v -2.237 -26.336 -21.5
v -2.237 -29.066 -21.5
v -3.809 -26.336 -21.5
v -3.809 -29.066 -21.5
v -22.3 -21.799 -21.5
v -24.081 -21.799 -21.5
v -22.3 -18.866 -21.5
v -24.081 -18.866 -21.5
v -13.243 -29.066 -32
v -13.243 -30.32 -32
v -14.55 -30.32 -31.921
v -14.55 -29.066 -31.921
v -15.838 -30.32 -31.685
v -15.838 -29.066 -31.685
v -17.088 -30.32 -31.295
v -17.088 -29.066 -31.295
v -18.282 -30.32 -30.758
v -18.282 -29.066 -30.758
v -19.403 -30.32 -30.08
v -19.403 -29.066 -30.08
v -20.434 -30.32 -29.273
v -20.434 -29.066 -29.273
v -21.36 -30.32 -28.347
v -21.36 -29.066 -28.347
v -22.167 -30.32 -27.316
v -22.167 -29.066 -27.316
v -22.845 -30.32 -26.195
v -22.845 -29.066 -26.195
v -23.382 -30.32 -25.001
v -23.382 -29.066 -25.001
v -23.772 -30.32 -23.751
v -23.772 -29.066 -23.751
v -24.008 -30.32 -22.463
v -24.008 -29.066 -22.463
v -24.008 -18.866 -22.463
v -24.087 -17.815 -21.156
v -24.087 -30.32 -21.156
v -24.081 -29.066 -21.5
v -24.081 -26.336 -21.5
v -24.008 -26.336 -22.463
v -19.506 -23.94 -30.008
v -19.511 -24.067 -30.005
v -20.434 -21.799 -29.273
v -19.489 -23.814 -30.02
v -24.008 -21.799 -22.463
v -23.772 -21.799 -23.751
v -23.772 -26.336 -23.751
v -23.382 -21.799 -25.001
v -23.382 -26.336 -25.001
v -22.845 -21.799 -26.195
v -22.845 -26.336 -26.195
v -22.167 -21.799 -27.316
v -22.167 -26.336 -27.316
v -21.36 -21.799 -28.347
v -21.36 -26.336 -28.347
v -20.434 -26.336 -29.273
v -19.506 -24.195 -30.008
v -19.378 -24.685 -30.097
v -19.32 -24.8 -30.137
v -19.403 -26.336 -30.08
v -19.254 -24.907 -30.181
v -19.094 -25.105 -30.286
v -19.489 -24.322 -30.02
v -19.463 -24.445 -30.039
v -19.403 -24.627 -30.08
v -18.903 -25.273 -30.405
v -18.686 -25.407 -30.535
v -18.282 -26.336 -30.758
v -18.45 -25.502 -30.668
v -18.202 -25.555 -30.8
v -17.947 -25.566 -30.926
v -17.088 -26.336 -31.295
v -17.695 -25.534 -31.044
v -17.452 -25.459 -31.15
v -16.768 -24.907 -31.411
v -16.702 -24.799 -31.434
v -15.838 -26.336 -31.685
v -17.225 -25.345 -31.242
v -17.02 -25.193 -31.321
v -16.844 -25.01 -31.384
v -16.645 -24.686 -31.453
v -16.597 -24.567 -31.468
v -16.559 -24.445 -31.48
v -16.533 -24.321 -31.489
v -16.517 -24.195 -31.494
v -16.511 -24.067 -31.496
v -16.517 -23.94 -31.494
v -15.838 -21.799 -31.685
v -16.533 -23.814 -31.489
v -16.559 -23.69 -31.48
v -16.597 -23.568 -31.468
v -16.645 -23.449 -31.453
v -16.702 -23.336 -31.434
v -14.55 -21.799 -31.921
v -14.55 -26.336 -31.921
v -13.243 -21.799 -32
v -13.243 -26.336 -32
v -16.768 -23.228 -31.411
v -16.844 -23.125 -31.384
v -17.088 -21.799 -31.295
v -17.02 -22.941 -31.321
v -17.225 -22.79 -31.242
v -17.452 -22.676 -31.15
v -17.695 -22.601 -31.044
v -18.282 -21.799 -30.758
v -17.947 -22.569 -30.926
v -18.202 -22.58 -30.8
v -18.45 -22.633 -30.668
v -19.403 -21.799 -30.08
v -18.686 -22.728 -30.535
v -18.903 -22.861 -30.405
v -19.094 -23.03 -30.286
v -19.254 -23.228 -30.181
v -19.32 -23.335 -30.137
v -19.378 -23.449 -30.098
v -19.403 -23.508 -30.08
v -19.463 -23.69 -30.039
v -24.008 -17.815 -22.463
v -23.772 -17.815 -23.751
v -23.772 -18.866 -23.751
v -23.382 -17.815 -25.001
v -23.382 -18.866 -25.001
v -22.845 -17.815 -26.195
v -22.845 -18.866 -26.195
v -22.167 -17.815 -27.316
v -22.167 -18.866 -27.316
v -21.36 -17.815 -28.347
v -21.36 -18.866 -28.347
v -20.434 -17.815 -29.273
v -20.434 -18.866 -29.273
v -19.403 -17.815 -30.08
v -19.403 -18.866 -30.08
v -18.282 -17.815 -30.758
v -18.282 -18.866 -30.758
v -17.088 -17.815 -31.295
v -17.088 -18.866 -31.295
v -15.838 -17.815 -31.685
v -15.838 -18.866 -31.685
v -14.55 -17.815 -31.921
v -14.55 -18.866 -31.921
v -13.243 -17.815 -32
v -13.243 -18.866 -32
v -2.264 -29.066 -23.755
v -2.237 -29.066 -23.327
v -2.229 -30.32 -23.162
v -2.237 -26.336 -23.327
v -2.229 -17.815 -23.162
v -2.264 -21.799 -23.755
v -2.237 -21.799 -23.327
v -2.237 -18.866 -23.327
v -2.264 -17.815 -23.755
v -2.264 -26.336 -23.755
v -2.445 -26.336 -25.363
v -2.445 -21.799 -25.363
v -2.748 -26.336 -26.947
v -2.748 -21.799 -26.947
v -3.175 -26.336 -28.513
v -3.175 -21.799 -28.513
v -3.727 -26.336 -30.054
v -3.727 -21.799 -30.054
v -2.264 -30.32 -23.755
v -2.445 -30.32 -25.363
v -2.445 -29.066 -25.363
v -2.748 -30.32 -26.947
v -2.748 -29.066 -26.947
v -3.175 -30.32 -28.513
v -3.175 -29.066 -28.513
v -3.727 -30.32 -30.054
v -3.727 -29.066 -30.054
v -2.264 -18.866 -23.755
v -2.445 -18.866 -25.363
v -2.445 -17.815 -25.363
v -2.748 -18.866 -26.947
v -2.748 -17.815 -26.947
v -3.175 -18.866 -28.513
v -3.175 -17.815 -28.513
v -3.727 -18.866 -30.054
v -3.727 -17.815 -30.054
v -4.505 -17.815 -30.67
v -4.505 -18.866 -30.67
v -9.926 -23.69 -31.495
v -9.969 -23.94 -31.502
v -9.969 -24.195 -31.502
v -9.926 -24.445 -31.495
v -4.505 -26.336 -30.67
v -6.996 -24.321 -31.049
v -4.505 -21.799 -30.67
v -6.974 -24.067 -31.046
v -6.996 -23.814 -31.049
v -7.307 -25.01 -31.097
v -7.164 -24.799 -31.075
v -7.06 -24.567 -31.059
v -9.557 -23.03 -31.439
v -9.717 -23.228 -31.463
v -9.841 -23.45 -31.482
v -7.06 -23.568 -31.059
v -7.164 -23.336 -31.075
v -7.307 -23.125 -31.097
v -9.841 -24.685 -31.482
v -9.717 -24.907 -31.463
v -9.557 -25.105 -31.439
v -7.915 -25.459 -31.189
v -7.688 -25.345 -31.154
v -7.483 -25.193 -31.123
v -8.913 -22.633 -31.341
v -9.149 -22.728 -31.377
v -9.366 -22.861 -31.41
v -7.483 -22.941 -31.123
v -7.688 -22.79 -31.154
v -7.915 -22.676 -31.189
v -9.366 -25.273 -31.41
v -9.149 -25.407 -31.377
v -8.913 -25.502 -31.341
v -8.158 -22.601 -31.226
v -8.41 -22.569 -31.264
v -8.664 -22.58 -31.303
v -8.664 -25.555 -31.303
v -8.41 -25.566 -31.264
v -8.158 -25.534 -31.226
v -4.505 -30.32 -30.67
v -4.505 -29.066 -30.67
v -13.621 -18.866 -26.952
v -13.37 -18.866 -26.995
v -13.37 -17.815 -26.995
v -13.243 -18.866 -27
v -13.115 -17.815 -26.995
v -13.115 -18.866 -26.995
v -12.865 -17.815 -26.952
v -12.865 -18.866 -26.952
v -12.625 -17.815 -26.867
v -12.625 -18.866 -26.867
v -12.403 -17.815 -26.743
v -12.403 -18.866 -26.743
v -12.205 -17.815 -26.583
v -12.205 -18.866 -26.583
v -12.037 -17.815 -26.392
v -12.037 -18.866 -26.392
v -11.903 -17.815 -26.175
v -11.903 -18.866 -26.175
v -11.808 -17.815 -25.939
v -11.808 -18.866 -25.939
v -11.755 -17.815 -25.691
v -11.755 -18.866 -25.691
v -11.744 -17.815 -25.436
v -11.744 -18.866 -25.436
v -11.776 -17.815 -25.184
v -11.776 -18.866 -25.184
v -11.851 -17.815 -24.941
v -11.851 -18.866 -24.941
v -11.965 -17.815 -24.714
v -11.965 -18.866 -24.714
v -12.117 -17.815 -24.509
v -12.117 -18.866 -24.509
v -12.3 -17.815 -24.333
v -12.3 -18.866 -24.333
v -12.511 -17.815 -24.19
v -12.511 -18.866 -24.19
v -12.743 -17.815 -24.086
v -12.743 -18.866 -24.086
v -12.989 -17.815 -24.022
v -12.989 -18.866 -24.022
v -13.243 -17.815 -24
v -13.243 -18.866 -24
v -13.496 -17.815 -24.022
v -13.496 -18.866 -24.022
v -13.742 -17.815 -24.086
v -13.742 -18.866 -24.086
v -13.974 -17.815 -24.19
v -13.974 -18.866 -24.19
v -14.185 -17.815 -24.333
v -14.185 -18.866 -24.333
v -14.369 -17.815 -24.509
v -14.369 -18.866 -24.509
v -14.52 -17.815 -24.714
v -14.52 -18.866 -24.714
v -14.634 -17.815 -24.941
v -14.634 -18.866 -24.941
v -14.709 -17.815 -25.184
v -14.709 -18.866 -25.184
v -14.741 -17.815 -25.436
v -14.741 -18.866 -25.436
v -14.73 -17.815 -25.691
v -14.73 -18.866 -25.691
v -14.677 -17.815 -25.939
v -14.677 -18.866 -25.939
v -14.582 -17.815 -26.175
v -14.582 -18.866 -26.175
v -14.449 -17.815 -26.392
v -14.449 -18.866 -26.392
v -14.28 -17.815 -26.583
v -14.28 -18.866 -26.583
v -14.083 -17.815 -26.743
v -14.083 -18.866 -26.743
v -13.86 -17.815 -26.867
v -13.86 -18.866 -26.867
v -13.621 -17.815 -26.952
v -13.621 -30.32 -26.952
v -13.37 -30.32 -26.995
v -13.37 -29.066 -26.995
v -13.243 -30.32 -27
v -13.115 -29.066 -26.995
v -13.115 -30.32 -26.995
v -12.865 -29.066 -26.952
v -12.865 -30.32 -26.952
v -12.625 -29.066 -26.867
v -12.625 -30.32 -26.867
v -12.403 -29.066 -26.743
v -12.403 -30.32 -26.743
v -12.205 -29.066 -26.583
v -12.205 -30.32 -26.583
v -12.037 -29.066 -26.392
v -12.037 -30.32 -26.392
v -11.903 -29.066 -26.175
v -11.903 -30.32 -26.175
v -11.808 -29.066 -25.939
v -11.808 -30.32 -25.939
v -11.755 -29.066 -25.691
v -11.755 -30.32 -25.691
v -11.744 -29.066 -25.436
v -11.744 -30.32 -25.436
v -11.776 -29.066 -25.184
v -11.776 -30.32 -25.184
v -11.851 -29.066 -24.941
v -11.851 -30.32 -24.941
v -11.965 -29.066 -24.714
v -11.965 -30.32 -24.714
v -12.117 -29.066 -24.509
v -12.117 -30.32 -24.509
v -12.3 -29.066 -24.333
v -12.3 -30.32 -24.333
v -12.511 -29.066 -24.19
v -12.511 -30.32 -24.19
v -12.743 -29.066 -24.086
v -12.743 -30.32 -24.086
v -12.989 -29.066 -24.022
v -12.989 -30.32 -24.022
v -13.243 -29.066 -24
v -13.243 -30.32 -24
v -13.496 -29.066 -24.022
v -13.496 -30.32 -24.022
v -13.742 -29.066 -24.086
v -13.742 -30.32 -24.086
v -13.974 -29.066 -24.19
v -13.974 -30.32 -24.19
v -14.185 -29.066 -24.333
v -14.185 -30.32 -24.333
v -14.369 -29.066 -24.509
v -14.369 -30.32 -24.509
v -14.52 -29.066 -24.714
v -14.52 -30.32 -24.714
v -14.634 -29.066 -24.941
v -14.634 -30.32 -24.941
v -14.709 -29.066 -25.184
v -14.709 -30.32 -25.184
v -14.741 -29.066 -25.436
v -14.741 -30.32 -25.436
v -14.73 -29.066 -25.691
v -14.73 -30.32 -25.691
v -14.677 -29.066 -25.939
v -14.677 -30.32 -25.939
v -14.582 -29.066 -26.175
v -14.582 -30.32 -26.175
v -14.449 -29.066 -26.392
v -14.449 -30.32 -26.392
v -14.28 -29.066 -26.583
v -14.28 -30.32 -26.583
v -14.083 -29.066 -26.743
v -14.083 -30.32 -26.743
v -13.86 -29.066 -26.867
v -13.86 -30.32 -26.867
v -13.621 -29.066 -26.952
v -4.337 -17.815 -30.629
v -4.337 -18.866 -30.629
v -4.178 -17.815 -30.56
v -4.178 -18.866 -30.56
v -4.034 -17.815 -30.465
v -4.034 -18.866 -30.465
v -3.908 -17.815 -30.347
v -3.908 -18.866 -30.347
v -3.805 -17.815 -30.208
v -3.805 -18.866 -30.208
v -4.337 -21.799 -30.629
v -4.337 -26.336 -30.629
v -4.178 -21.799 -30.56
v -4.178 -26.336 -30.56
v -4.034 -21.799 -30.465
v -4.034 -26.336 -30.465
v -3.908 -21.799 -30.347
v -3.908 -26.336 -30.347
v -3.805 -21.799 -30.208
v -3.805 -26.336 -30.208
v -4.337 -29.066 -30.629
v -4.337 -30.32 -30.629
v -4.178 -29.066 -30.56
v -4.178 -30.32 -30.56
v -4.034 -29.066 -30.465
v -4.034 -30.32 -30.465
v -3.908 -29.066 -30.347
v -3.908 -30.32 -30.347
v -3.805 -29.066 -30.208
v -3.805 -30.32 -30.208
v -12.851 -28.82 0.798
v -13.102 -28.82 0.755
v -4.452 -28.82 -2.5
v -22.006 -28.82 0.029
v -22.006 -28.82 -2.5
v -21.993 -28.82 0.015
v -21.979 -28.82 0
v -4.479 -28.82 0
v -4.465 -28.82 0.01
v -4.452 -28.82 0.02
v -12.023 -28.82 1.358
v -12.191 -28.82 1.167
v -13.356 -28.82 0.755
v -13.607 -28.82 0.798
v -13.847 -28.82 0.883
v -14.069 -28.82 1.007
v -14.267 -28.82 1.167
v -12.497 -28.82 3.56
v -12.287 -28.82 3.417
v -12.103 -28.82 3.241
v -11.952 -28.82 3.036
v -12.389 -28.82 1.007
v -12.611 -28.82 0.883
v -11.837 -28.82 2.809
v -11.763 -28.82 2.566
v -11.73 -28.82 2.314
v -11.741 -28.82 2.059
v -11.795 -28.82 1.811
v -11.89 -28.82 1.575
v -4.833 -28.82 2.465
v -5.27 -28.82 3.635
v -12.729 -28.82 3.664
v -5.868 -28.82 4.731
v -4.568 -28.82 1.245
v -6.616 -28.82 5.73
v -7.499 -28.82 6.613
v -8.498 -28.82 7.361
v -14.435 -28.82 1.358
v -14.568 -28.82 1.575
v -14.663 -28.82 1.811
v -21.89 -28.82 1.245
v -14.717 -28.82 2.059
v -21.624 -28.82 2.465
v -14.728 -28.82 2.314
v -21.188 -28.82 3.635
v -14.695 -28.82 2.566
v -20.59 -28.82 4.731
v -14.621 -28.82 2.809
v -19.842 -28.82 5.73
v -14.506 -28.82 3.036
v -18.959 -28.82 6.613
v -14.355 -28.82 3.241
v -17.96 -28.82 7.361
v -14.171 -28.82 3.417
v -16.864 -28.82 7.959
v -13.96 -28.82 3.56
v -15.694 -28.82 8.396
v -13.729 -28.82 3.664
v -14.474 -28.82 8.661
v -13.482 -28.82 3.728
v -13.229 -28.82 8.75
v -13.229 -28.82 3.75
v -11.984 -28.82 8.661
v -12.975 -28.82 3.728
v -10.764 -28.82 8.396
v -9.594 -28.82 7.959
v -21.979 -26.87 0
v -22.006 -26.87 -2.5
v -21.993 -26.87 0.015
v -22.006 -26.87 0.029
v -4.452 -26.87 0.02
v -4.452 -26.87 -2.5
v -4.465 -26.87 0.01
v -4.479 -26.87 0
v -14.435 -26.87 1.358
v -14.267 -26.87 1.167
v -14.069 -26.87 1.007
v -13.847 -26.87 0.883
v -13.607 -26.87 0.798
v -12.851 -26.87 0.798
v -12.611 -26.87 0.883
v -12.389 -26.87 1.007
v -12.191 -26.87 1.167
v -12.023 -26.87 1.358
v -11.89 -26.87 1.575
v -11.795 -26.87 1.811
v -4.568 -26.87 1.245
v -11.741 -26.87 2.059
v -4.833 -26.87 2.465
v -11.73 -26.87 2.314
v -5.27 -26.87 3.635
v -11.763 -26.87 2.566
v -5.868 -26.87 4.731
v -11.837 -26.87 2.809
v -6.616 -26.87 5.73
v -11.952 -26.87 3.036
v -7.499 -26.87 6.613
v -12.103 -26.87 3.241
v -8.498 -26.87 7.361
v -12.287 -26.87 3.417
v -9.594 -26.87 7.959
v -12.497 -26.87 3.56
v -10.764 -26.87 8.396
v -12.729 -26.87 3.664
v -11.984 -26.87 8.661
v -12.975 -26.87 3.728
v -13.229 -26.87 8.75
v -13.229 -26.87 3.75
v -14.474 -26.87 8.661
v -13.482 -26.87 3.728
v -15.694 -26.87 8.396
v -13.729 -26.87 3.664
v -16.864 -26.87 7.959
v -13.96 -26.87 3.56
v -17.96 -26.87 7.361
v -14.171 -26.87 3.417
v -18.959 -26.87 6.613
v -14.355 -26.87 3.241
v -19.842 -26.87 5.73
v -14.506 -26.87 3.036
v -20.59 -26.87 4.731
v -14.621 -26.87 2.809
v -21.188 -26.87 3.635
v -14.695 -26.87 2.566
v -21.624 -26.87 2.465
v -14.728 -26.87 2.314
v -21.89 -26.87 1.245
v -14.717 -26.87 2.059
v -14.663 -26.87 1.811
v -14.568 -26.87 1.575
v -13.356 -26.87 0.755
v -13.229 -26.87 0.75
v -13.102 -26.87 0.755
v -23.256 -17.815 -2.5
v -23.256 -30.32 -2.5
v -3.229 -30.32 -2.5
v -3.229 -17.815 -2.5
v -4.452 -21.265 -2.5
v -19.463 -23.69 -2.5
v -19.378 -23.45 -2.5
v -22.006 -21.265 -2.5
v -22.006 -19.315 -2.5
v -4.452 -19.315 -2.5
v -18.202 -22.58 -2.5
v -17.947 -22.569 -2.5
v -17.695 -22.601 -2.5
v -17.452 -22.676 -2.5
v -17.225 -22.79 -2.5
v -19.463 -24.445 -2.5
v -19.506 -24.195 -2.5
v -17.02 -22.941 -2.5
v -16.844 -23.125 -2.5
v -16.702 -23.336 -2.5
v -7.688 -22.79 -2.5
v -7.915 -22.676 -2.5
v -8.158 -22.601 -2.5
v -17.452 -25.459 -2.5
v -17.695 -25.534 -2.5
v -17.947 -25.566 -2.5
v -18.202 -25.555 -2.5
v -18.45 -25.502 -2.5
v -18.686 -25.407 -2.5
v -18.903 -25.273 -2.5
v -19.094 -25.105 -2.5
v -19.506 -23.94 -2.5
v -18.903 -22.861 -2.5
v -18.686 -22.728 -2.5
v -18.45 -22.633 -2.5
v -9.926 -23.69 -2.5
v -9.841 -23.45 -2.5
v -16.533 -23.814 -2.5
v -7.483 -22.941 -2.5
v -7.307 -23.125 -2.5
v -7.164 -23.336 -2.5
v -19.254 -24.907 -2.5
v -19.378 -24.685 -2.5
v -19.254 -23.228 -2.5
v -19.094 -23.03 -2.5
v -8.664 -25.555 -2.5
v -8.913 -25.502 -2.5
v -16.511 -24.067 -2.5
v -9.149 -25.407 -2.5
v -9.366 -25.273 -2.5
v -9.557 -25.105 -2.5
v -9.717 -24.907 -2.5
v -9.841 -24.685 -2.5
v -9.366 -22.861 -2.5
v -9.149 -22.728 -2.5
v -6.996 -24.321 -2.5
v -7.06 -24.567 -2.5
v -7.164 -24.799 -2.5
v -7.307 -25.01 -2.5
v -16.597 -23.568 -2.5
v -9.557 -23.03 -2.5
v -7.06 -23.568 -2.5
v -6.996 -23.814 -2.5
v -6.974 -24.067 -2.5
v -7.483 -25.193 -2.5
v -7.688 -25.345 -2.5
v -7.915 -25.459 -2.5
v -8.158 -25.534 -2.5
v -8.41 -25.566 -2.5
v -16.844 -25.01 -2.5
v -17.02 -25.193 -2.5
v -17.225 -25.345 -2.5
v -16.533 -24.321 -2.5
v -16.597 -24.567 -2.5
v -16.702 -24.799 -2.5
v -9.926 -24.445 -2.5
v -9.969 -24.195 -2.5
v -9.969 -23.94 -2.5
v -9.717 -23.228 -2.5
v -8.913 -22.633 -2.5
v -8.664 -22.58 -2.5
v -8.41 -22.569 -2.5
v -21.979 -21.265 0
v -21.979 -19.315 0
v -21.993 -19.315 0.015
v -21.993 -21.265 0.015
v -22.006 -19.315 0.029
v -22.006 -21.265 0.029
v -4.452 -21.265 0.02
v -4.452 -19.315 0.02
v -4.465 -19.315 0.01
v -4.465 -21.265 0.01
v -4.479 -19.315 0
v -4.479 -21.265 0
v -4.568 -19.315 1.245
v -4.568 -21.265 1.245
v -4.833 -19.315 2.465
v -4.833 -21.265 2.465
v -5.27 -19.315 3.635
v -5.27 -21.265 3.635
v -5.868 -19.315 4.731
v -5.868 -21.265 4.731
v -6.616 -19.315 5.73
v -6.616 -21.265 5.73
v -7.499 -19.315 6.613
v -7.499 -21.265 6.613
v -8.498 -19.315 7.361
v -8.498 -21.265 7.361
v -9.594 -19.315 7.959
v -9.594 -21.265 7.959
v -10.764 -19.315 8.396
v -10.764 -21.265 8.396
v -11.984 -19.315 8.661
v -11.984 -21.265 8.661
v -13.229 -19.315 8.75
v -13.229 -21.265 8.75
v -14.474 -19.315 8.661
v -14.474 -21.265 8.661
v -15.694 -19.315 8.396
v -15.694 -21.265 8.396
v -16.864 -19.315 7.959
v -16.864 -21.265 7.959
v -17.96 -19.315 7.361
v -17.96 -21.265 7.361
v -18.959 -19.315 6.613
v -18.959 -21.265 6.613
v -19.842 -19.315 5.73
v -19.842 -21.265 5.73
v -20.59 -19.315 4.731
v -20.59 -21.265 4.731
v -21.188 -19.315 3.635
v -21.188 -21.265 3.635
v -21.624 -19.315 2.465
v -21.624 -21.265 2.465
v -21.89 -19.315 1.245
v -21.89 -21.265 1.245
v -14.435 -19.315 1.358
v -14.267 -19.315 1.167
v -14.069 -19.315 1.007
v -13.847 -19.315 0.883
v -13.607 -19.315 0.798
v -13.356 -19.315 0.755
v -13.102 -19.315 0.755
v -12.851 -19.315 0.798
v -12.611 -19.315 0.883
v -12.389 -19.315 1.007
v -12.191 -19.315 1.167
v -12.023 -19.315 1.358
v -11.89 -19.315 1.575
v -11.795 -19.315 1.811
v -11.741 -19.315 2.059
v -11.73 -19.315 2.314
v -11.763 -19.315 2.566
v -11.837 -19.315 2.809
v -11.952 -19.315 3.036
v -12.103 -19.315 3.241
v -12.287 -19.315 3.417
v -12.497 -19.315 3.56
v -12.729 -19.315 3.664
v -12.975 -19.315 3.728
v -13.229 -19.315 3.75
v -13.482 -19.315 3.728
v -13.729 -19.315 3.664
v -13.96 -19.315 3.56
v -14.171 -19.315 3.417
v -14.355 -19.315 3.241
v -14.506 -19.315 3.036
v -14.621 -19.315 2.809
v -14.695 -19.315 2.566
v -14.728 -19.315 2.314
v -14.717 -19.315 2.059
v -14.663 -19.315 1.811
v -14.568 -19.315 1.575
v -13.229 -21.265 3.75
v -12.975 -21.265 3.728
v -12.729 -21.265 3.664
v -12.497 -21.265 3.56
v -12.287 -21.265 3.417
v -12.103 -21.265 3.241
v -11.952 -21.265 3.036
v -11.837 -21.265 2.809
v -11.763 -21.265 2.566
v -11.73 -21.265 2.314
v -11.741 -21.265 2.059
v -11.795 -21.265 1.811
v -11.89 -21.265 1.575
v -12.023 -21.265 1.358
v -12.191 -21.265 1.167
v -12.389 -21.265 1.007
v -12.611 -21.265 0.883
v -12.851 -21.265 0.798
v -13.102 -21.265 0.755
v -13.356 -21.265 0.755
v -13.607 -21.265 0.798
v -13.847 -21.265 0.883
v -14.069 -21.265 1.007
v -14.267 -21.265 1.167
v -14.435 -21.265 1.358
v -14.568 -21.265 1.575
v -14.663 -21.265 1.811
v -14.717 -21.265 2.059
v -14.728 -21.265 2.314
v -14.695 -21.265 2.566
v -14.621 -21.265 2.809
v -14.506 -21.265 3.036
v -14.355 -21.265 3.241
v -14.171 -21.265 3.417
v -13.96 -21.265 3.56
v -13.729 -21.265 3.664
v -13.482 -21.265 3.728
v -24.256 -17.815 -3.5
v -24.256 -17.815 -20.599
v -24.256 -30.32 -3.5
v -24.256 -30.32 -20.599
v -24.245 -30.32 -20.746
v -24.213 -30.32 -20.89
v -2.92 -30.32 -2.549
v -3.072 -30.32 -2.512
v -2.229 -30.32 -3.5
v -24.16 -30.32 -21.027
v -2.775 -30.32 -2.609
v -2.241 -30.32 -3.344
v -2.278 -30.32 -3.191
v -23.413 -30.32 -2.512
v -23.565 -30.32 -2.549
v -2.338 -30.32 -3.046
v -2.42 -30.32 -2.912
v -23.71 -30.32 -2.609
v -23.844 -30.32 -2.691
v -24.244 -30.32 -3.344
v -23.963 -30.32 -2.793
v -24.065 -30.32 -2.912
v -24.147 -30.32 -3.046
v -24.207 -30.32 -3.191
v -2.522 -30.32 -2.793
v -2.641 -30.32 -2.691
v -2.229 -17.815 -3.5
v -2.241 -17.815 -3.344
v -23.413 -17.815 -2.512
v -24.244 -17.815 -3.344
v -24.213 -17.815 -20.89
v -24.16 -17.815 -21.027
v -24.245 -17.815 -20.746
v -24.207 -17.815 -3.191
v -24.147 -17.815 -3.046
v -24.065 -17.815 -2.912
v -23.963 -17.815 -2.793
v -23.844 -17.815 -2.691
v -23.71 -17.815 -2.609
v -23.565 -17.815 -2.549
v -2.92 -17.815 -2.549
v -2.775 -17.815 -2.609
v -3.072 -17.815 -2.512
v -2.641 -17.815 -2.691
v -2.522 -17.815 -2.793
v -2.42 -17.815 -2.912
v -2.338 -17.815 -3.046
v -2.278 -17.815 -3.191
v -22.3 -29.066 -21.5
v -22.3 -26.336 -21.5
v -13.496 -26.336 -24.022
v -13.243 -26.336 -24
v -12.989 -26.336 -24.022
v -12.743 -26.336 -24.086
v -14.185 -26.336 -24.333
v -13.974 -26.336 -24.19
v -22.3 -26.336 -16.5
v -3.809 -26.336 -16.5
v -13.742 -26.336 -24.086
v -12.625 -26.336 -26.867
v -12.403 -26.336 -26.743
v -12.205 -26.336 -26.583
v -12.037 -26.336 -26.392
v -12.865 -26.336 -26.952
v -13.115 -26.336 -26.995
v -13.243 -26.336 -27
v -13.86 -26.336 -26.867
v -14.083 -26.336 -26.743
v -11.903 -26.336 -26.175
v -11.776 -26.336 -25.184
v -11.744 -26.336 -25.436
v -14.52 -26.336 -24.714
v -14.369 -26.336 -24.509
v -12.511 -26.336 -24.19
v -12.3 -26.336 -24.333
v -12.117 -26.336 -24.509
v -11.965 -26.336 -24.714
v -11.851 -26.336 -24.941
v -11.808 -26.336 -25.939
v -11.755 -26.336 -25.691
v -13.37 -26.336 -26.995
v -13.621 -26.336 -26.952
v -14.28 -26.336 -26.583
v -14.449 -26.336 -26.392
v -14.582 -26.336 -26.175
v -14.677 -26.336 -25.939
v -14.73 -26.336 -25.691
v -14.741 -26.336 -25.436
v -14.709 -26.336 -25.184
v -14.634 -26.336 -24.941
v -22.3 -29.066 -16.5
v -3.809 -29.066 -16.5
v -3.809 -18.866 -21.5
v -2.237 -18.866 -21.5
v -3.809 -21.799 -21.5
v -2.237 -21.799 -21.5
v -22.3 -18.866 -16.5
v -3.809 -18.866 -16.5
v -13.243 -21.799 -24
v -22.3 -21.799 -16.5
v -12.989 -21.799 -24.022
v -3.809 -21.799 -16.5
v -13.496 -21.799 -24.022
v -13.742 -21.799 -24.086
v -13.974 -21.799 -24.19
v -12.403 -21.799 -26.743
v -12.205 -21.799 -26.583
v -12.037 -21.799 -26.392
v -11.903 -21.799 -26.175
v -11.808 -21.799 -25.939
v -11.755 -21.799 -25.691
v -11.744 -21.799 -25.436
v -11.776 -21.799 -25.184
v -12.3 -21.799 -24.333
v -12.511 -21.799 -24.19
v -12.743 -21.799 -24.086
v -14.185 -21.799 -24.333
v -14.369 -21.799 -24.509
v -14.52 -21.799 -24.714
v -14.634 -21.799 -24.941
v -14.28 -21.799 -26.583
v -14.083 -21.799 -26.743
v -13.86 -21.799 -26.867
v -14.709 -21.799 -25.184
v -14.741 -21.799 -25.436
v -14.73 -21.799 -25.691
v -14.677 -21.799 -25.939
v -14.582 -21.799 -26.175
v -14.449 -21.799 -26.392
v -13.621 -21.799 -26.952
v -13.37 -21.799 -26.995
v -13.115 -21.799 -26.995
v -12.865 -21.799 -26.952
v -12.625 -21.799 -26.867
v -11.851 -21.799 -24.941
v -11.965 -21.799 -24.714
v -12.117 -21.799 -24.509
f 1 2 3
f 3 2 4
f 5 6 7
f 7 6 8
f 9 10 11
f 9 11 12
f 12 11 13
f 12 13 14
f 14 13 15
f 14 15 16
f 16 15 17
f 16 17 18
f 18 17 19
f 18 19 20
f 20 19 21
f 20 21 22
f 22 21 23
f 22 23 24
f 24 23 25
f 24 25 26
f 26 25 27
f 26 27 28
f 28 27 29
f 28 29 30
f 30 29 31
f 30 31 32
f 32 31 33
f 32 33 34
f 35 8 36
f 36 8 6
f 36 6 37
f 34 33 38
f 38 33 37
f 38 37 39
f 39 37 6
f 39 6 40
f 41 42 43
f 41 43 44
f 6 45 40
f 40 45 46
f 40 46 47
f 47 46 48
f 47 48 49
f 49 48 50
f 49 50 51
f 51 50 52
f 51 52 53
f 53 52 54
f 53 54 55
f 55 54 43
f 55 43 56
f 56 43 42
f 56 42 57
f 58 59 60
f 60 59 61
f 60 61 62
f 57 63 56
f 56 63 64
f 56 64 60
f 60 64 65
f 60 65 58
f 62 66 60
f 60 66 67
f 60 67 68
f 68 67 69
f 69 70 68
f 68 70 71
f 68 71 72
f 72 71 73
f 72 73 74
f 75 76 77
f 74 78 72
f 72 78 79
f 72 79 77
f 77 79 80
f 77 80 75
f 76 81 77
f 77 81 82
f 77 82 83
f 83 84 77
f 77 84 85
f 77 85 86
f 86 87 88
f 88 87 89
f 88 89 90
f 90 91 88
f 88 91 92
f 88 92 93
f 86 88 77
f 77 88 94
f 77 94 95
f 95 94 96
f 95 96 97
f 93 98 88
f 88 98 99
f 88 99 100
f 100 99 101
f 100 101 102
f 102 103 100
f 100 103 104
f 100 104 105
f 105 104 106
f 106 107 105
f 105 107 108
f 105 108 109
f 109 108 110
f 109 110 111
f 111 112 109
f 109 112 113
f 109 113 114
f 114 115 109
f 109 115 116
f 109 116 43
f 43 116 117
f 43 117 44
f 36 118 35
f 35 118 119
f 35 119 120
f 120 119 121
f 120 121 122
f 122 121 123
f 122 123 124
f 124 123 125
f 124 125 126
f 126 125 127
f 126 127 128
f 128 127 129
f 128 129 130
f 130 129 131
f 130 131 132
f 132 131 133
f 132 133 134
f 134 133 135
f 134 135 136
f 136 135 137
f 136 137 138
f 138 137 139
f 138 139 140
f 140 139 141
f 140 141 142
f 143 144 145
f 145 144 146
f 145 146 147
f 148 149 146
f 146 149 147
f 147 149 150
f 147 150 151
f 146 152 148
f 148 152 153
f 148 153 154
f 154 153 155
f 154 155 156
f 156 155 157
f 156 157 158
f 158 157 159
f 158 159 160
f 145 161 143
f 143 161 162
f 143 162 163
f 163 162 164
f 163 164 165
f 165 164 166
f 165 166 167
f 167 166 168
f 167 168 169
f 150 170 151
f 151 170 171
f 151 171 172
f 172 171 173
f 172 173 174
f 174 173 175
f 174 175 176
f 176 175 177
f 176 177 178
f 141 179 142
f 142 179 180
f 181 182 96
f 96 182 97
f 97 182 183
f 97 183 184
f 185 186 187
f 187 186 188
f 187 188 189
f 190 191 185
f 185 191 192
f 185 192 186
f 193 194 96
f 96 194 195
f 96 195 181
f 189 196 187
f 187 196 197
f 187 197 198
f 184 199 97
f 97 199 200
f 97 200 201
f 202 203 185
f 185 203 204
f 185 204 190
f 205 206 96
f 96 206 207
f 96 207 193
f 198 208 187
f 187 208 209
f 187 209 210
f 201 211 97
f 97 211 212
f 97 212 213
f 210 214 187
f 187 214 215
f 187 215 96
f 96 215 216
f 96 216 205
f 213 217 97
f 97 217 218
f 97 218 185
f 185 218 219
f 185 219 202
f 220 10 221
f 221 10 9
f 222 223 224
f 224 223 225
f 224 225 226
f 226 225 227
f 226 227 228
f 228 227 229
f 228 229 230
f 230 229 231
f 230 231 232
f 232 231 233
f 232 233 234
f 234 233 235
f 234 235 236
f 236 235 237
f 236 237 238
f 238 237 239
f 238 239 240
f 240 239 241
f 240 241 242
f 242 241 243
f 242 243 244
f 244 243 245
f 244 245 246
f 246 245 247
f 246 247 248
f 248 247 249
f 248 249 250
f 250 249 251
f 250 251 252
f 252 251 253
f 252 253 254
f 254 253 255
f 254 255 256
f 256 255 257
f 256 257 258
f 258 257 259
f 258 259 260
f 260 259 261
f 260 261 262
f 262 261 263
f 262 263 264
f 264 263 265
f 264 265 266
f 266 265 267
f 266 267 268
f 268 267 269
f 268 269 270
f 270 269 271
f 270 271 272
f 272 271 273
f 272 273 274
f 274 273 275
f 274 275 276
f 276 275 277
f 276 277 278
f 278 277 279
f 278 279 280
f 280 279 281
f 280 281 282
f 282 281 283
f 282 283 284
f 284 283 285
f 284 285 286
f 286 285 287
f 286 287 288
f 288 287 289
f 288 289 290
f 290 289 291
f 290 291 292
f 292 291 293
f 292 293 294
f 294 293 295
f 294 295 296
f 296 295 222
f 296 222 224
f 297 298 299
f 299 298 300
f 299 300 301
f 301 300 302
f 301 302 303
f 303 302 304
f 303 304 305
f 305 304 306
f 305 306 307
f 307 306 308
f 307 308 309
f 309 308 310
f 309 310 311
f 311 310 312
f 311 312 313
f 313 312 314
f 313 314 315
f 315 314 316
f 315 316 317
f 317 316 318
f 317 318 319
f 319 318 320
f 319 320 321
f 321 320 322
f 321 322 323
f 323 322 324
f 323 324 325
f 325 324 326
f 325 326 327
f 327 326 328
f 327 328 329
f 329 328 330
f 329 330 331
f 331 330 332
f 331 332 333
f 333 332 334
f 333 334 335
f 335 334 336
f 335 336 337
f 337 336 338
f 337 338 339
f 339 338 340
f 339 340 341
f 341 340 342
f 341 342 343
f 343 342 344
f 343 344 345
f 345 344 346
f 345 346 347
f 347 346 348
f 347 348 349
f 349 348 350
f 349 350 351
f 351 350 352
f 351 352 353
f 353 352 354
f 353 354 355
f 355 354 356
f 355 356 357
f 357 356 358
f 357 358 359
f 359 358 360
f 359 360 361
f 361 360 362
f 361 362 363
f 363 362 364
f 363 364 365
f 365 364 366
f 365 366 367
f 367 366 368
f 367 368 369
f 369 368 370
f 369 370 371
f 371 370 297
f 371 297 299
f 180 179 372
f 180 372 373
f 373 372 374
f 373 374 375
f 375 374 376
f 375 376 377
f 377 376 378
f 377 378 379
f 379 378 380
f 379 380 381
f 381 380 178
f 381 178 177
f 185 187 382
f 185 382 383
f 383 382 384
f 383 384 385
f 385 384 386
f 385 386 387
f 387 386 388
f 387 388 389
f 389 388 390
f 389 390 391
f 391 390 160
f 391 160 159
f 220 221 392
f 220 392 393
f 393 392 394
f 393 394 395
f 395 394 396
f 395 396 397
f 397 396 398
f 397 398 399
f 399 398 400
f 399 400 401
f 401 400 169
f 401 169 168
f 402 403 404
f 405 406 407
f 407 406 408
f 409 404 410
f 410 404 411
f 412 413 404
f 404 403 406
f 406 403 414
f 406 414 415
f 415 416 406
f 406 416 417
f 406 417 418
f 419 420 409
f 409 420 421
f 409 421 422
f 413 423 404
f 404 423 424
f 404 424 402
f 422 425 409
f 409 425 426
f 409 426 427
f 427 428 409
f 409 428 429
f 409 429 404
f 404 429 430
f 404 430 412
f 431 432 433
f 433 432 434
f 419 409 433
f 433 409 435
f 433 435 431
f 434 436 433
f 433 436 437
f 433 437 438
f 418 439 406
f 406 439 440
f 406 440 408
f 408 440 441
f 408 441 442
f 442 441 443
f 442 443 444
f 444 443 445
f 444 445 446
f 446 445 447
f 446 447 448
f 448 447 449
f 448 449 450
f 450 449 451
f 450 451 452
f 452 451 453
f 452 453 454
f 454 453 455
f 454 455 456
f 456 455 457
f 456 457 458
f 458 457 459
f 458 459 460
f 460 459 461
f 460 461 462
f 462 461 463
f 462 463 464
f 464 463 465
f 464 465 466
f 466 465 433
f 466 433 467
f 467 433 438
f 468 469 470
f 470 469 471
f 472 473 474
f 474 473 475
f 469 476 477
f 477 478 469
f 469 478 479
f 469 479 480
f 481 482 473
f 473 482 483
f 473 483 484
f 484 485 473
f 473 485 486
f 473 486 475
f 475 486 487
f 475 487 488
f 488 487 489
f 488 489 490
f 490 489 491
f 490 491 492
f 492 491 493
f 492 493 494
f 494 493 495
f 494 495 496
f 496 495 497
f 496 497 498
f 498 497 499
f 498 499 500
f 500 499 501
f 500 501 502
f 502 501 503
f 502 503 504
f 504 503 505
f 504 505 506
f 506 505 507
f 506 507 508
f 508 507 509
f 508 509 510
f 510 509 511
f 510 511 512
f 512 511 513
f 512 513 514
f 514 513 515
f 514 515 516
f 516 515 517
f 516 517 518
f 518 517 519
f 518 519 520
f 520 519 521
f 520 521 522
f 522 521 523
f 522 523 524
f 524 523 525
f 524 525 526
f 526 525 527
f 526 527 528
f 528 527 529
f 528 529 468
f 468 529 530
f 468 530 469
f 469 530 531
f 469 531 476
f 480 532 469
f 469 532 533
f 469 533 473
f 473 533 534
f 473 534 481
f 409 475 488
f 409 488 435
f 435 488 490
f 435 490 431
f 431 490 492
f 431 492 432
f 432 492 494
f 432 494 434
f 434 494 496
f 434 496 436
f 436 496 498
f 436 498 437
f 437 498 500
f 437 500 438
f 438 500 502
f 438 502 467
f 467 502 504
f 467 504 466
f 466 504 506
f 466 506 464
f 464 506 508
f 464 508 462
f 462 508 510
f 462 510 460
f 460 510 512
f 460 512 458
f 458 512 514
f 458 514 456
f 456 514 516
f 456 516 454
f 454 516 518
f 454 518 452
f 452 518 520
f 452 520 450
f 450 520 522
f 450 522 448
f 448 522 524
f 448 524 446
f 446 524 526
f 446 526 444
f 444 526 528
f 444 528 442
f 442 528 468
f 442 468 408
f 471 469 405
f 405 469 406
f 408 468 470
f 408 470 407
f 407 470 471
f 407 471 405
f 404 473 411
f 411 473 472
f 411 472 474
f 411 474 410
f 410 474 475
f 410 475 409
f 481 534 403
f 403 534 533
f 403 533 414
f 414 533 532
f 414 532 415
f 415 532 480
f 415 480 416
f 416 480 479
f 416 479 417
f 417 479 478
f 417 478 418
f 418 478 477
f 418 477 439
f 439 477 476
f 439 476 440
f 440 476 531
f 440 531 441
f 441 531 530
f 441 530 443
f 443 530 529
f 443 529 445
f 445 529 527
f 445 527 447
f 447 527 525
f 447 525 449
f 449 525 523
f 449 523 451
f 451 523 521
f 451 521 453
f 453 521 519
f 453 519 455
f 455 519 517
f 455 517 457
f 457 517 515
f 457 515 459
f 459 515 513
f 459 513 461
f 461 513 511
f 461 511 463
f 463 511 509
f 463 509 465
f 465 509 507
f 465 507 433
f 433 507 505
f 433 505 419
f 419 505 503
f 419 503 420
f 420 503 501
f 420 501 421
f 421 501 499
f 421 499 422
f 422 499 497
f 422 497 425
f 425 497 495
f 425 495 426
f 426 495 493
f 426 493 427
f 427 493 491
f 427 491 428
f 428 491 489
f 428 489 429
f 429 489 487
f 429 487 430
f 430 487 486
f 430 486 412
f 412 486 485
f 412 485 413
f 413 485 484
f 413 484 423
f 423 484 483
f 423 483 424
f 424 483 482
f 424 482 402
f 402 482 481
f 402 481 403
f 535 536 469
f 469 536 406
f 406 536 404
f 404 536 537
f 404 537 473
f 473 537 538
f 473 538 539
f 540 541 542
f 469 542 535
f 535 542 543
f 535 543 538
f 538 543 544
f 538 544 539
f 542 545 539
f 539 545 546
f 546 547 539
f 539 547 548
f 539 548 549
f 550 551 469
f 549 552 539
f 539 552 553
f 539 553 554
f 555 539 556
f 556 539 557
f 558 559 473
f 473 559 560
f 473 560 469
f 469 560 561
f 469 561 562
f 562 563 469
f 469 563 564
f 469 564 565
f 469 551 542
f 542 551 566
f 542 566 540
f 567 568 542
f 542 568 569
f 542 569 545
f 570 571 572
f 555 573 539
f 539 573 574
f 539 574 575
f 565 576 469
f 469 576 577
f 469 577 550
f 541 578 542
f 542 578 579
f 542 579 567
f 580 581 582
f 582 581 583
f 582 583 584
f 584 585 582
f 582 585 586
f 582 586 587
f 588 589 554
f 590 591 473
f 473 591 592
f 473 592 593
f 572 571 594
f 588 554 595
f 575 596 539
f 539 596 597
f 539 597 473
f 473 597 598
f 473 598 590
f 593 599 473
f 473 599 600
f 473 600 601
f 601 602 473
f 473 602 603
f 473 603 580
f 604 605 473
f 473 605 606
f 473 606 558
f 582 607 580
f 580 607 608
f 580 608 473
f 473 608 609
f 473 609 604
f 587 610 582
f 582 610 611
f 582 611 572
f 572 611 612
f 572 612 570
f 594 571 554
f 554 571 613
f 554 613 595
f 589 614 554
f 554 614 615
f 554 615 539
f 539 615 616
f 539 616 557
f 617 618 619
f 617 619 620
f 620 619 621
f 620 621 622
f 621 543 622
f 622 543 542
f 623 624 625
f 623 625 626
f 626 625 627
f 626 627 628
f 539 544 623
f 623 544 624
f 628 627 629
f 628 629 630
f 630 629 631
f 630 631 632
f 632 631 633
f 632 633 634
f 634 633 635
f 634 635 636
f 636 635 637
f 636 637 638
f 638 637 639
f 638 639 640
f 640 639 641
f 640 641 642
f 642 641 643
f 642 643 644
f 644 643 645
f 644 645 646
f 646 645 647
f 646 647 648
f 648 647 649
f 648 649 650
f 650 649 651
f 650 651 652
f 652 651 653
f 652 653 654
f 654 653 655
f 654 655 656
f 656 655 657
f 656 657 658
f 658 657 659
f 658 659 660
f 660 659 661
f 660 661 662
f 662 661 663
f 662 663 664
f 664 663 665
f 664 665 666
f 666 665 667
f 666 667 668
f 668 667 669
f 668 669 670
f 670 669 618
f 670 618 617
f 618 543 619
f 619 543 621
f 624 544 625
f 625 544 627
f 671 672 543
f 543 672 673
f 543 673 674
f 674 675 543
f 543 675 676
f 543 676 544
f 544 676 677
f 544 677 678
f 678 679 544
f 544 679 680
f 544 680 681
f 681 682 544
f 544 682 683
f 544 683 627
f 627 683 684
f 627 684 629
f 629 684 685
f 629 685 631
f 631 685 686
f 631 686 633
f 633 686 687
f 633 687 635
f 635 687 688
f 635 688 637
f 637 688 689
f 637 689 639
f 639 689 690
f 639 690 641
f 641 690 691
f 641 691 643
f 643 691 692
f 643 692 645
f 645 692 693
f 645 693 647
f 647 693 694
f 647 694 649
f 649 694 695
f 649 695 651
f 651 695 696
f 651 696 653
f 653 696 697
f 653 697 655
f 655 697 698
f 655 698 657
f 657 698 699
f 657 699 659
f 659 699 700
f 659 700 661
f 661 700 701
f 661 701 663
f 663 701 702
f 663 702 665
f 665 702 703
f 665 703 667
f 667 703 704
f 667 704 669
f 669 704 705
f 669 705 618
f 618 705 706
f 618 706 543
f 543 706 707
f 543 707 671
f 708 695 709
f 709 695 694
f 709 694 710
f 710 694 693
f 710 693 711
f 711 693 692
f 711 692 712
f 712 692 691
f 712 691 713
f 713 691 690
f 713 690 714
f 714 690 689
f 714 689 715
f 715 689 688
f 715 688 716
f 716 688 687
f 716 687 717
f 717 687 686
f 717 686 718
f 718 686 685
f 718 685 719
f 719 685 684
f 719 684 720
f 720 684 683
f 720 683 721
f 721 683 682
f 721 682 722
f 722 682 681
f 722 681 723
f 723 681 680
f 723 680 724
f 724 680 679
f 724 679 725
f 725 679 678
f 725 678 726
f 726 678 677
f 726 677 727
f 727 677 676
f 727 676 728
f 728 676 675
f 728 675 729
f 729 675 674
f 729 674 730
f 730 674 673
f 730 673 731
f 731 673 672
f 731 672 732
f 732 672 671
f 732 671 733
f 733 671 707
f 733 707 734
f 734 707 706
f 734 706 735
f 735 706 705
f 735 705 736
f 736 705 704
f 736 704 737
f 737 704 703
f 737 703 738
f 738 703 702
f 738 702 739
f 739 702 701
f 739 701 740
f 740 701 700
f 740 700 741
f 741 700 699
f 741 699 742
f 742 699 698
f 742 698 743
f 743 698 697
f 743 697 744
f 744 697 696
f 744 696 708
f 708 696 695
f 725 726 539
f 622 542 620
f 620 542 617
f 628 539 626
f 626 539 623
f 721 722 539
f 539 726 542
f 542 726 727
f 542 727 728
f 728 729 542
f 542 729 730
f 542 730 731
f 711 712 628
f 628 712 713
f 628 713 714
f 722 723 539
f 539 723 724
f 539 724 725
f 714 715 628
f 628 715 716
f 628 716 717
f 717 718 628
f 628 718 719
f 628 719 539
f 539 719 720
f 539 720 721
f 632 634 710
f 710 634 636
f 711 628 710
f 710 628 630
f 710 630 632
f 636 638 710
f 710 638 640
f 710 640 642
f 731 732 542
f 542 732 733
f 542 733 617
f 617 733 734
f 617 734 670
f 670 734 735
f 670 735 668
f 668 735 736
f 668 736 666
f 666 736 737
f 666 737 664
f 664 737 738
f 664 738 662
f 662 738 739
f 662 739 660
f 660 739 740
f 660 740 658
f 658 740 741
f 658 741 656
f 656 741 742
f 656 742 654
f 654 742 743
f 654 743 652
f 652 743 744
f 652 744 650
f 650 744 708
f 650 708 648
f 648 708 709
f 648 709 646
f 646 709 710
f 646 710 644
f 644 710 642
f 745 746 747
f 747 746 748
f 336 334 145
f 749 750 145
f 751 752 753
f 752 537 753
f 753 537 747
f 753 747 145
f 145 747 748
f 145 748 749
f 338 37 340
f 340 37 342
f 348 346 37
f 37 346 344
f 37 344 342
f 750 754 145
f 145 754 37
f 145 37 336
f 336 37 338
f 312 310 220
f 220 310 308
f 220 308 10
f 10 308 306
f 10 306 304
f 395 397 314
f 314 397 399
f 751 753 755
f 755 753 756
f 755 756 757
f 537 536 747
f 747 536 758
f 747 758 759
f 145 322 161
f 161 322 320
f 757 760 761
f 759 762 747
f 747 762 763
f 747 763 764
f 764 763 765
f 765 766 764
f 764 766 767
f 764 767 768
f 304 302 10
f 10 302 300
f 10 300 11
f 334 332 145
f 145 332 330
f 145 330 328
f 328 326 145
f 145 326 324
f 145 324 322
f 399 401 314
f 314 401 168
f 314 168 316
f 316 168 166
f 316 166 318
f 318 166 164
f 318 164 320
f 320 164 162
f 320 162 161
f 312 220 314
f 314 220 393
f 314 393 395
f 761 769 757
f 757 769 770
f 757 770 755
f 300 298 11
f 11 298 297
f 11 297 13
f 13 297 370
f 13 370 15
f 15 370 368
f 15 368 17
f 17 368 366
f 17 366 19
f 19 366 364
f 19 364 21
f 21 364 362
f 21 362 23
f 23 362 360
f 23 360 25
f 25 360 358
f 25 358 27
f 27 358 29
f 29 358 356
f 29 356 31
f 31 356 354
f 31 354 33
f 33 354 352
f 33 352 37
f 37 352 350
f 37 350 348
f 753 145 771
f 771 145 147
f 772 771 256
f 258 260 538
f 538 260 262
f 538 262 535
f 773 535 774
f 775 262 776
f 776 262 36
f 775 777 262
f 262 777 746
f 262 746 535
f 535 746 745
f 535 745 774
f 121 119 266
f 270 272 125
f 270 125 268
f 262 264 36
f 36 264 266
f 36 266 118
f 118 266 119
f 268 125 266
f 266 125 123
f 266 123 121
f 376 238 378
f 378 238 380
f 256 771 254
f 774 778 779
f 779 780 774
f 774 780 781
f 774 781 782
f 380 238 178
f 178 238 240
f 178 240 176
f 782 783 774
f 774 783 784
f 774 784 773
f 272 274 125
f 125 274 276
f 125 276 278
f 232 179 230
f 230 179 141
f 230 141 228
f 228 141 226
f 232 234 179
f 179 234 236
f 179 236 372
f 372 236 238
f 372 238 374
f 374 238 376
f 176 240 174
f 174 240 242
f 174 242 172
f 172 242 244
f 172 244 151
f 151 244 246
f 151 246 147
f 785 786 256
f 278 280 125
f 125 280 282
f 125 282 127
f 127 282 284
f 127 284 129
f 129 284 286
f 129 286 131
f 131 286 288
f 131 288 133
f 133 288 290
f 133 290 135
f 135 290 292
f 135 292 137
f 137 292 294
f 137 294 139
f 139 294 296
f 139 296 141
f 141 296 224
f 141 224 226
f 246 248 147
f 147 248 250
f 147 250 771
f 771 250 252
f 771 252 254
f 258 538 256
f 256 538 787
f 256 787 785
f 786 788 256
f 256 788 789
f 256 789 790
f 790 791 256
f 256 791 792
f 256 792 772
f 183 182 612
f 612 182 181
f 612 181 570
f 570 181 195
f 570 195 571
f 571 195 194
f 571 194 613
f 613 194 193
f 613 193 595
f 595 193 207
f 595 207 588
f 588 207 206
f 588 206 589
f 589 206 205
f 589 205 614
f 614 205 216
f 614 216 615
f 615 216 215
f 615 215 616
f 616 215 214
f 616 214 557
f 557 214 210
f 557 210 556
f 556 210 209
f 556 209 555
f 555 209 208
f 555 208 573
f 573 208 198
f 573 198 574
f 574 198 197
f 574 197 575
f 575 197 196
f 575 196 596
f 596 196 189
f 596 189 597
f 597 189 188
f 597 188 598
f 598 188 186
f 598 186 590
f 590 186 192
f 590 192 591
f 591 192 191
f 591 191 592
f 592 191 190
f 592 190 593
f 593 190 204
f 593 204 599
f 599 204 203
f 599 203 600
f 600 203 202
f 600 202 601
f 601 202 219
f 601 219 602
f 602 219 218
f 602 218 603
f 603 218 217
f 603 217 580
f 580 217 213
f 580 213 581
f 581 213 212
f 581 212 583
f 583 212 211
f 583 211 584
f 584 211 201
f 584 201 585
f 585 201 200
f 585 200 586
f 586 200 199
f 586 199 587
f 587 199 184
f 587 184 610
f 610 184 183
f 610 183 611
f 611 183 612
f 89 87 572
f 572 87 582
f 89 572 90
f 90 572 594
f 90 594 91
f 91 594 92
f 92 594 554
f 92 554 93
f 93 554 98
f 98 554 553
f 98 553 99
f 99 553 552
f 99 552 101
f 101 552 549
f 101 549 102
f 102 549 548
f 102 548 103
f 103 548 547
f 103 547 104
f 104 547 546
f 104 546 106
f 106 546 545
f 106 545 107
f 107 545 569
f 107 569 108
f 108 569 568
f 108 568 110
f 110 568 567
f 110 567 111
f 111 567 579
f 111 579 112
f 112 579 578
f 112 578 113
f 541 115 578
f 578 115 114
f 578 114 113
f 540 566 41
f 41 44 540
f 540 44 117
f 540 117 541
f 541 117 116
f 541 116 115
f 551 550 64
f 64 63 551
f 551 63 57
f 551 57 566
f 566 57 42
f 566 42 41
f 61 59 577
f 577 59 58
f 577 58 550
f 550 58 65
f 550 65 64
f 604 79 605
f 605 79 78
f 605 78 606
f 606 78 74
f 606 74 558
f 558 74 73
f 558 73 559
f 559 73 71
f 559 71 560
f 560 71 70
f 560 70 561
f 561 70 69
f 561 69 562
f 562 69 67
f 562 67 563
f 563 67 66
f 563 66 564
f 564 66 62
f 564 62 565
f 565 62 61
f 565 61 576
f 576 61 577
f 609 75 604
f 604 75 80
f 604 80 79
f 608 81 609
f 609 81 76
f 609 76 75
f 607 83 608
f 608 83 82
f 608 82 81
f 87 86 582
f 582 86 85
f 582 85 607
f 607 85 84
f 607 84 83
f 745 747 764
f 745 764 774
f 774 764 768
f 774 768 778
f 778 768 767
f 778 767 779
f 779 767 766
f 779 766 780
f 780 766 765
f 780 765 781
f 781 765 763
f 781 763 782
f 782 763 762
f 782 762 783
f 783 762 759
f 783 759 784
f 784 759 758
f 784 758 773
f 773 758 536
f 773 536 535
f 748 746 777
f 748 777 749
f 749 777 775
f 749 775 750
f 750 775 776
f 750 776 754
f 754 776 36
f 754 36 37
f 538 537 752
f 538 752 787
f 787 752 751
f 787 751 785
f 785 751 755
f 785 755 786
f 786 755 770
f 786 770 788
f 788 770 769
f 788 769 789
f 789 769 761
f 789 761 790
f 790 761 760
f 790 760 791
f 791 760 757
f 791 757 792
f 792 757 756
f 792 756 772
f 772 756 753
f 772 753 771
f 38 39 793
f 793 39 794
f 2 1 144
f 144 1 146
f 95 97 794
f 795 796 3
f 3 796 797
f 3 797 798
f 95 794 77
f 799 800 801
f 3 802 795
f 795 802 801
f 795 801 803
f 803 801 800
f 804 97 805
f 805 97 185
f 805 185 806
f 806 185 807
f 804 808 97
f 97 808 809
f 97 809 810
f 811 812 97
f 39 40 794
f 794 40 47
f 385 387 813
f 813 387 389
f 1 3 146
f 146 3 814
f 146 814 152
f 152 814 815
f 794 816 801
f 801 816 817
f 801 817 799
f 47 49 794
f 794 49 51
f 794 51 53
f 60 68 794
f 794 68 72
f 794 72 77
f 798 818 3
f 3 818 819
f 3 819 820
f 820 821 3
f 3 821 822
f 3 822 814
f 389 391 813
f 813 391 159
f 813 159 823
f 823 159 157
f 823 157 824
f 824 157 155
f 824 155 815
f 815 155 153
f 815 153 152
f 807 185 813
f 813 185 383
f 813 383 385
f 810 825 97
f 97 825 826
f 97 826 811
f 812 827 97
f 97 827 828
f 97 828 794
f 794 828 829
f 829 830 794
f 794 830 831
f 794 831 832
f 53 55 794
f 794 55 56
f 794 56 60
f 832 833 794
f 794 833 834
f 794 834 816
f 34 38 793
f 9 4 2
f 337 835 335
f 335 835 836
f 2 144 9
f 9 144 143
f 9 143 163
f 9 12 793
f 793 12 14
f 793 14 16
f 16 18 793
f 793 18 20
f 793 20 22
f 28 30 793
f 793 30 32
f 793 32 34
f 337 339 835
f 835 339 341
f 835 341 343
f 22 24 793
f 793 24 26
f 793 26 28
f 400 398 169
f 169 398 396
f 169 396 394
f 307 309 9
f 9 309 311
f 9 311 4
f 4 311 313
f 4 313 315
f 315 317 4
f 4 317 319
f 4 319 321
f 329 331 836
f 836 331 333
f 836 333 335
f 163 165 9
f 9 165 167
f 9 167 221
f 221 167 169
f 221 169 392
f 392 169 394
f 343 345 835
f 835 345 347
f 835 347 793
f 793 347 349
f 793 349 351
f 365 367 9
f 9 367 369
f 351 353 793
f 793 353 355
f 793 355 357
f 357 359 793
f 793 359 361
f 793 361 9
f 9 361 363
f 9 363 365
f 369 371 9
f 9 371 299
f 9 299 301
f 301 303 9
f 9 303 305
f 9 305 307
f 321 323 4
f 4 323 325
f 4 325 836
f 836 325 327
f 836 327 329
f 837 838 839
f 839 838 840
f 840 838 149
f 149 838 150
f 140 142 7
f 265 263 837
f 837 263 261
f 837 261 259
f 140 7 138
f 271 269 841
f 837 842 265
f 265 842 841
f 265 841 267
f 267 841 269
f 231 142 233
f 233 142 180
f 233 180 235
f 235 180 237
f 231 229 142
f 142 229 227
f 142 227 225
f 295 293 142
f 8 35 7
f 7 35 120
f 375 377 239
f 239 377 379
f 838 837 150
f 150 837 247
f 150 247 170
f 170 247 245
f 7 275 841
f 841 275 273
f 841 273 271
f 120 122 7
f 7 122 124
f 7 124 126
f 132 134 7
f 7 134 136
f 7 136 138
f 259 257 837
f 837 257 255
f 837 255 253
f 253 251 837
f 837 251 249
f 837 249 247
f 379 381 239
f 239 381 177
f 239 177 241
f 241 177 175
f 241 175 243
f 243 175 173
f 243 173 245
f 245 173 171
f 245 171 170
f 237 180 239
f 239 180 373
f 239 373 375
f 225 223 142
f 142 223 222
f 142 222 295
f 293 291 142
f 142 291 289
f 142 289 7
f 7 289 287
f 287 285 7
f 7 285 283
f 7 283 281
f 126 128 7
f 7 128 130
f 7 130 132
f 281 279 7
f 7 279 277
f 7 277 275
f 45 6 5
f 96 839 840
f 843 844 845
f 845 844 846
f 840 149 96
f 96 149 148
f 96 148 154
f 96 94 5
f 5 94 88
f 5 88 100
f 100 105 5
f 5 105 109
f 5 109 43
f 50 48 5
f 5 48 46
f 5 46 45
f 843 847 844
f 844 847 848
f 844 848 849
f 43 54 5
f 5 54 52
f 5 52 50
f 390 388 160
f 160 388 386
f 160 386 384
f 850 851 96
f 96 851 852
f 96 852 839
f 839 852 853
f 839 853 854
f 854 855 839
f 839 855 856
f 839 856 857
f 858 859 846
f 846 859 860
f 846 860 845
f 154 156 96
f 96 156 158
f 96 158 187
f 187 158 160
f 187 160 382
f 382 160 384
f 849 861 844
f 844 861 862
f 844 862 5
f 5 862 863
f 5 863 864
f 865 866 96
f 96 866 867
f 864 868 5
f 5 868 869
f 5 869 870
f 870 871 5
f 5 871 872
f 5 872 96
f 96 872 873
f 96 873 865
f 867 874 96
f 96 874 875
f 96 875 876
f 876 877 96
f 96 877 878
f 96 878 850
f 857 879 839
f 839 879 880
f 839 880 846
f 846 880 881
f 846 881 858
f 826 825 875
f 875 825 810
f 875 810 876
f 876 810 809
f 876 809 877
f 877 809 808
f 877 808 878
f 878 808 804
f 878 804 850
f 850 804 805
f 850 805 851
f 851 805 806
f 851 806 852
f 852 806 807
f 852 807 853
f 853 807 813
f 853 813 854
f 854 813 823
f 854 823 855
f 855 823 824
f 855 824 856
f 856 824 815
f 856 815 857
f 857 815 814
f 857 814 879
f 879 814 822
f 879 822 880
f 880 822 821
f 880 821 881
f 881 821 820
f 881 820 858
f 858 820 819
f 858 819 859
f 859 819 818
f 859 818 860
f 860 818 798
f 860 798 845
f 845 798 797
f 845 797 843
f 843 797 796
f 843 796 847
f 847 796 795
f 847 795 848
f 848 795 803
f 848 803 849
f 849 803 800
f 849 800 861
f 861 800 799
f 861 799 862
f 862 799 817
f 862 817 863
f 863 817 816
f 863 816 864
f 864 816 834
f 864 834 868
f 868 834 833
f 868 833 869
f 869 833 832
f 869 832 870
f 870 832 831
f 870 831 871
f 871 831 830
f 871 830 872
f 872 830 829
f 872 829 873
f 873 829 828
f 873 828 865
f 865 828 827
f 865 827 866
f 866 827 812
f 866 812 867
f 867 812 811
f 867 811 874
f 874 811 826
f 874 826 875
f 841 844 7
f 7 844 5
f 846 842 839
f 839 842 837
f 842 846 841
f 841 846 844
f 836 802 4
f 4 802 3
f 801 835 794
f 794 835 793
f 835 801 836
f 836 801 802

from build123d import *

# Parameters (mm, degrees)
SKETCH2_W             = 17.554431489
SKETCH2_H             = 1.95
BOSS_EXTRUDE1_DEPTH   = 8.75
BOSS_EXTRUDE1_2_DEPTH = 8.75
CUT_EXTRUDE1_DEPTH    = 26.518349076
SKETCH4_W             = 22.027215745
SKETCH4_H             = 12.505427167
BOSS_EXTRUDE2_DEPTH   = 32
SKETCH5_R             = 1.5
CUT_EXTRUDE2_DEPTH    = 12
SKETCH6_W             = 22.027215745
SKETCH6_H             = 12.505427167
SKETCH6_W_2           = 17.554431489
SKETCH6_H_2           = 1.95
CUT_EXTRUDE3_DEPTH    = 2.5
SKETCH7_R             = 1.5
CUT_EXTRUDE4_DEPTH    = 13
SKETCH8_R             = 1.5
CUT_EXTRUDE5_DEPTH    = 34
FILLET3_R             = 1
SKETCH9_W             = 22.010837792
SKETCH9_H             = 2.932484208
SKETCH9_H_2           = 2.729697333
CUT_EXTRUDE6_DEPTH    = 11
SKETCH10_W            = 18.490355351
SKETCH10_H            = 2.932484208
SKETCH10_H_2          = 2.729697333
CUT_EXTRUDE7_DEPTH    = 5


with BuildPart() as part:
    # Sketch2 → Boss-Extrude1 (new body)
    with BuildSketch(Plane.XY):
        with Locations((-13.228930986, -27.845183414)):
            Rectangle(SKETCH2_W, SKETCH2_H)
    extrude(amount=BOSS_EXTRUDE1_DEPTH)


with BuildPart() as body_2:
    # Sketch2 → Boss-Extrude1 2 (new body)
    with BuildSketch(Plane.XY):
        with Locations((-13.228930986, -20.289756247)):
            Rectangle(SKETCH2_W, SKETCH2_H)
    extrude(amount=BOSS_EXTRUDE1_2_DEPTH)


with BuildPart() as cut_extrude1_tool:
    # Sketch3 → Cut-Extrude1 (new, through all)
    with BuildSketch(Plane(origin=(0, -19.314756247, 0), x_dir=(1, 0, 0), z_dir=(0, 1, 0))):
        with BuildLine():
            ThreePointArc((-13.228930986, -8.75), (-7.041746651, -6.187184335), (-4.478930986, 0))
            add(Edge.make_bspline(
                [(-4.478930986, 0), (1.138349918, -4.151657709), (-4.451715242, -8.75)],
                knots=[0, 0, 0, 1, 1, 1], degree=2))
            add(Edge.make_bspline(
                [(-22.006146731, -8.75), (-13.228930986, -12.473510392), (-4.451715242, -8.75)],
                knots=[0, 0, 0, 1, 1, 1], degree=2))
            add(Edge.make_bspline(
                [(-21.978930986, 0), (-25.926969228, -4.242865138), (-22.006146731, -8.75)],
                knots=[0, 0, 0, 1, 1, 1], degree=2))
            ThreePointArc((-21.978930986, 0), (-19.416115322, -6.187184335), (-13.228930986, -8.75))
        make_face()
    extrude(amount=-CUT_EXTRUDE1_DEPTH)


with BuildPart() as part_1:
    add(part.part)

    # Cut-Extrude1: cut by cut_extrude1_tool
    add(cut_extrude1_tool.part, mode=Mode.SUBTRACT)



with BuildPart() as body_2_1:
    add(body_2.part)

    # Cut-Extrude1: cut by cut_extrude1_tool
    add(cut_extrude1_tool.part, mode=Mode.SUBTRACT)


with BuildPart() as part_2:
    add(part_1.part)

    add(body_2_1.part)  # Boss-Extrude2 merges body 2
    # Sketch4 → Boss-Extrude2 (add)
    with BuildSketch(Plane(origin=(0, 0, 0), x_dir=(-1, 0, 0), z_dir=(0, 0, -1))):
        with Locations((13.242538859, -24.067469831)):
            Rectangle(SKETCH4_W, SKETCH4_H)
    extrude(amount=BOSS_EXTRUDE2_DEPTH)

    # Sketch5 → Cut-Extrude2 (cut)
    with BuildSketch(Plane(origin=(0, -19.314756247, 0), x_dir=(1, 0, 0), z_dir=(0, 1, 0))):
        with Locations(Location((-13.228930986, -2.25, 0), (0, 0, 270))):
            Circle(SKETCH5_R)
    extrude(amount=-CUT_EXTRUDE2_DEPTH, mode=Mode.SUBTRACT)

    # Sketch6 → Cut-Extrude3 (cut)
    with BuildSketch(Plane.XY):
        with Locations((-13.242538859, -24.067469831)):
            Rectangle(SKETCH6_W, SKETCH6_H)
        with Locations((-13.228930986, -27.845183414)):
            Rectangle(SKETCH6_W_2, SKETCH6_H_2, mode=Mode.SUBTRACT)
        with Locations((-13.228930986, -20.289756247)):
            Rectangle(SKETCH6_W_2, SKETCH6_H_2, mode=Mode.SUBTRACT)
    extrude(amount=-CUT_EXTRUDE3_DEPTH, mode=Mode.SUBTRACT)

    # Sketch7 → Cut-Extrude4 (cut)
    with BuildSketch(Plane(origin=(0, -17.814756247, 0), x_dir=(1, 0, 0), z_dir=(0, 1, 0))):
        with Locations(Location((-13.242538859, 25.5, 0), (0, 0, 270))):
            Circle(SKETCH7_R)
        with BuildLine():
            Line((-24.086865874, 21.155672985), (-24.256146731, 21.155672985))
            add(Edge.make_bspline(
                [(-2.228930986, 21.155672985), (11.471530889, 27.189710441), (-11.765166974, 53.431279988), (-37.007876173, 21.523583672), (-24.256146731, 21.155672985)],
                knots=[0, 0, 0, 0, 0.52011282, 1, 1, 1, 1], degree=3))
            add(Edge.make_bspline(
                [(-3.948545621, 30.585343246), (-2.007113924, 26.093685314), (-2.228930986, 21.155672985)],
                knots=[0, 0, 0, 1, 1, 1], degree=2))
            Line((-3.948545621, 30.585343246), (-13.242538859, 32))
            ThreePointArc((-13.242538859, 32), (-20.910636028, 28.823770155), (-24.086865874, 21.155672985))
        make_face()
    extrude(amount=-CUT_EXTRUDE4_DEPTH, mode=Mode.SUBTRACT)

    # Sketch8 → Cut-Extrude5 (cut)
    with BuildSketch(Plane.XY.offset(-2.5)):
        with Locations((-18.011106811, -24.06746983)):
            Circle(SKETCH8_R)
        with Locations((-8.473970906, -24.06746983)):
            Circle(SKETCH8_R)
    extrude(amount=-CUT_EXTRUDE5_DEPTH, mode=Mode.SUBTRACT)

    # Fillet3
    # the kernel refuses this fillet: 1 mm, written as the material it takes off along each edge
    with BuildSketch(Plane(origin=(-24.256146731, -15.314756247, -2.5), x_dir=(1, 0, 0), z_dir=(0, -1, 0))) as fillet3_piece_1:
        with BuildLine():
            CenterArc((FILLET3_R, -FILLET3_R), FILLET3_R, 90, 90)
            Line((0, -FILLET3_R), (-FILLET3_R * 0.02, -FILLET3_R))
            Line((-FILLET3_R * 0.02, -FILLET3_R), (-FILLET3_R * 0.02, FILLET3_R * 0.02))
            Line((-FILLET3_R * 0.02, FILLET3_R * 0.02), (FILLET3_R, FILLET3_R * 0.02))
            Line((FILLET3_R, FILLET3_R * 0.02), (FILLET3_R, 0))
        make_face()
    extrude(amount=17.505427167, mode=Mode.SUBTRACT)
    with BuildSketch(Plane(origin=(-24.256146731, -16.423026869, -21.155672985), x_dir=(0, 0, 1), z_dir=(0, -1, 0))) as fillet3_piece_2:
        with BuildLine():
            CenterArc((0.556691751, -1), FILLET3_R, 90, 33.827317624)
            Line((0, -0.169280857), (-0.011133835, -0.152666474))
            ThreePointArc((-0.011133835, -0.152666474), (-0.02, -0.084640429), (-0.02, 0))
            Line((-0.02, 0), (0, 0.02))
            Line((0, 0.02), (0.556691751, 0.02))
            Line((0.556691751, 0.02), (0.556691751, 0))
        make_face()
    extrude(amount=15.288885922, mode=Mode.SUBTRACT)
    with BuildSketch(Plane(origin=(-2.228930986, -32.820183414, -2.5), x_dir=(0, 0, -1), z_dir=(0, 1, 0))) as fillet3_piece_3:
        with BuildLine():
            CenterArc((FILLET3_R, FILLET3_R), FILLET3_R, 180, 90)
            Line((0, FILLET3_R), (-FILLET3_R * 0.02, FILLET3_R))
            Line((-FILLET3_R * 0.02, FILLET3_R), (-FILLET3_R * 0.02, -FILLET3_R * 0.02))
            Line((-FILLET3_R * 0.02, -FILLET3_R * 0.02), (FILLET3_R, -FILLET3_R * 0.02))
            Line((FILLET3_R, -FILLET3_R * 0.02), (FILLET3_R, 0))
        make_face()
    extrude(amount=17.505427167, mode=Mode.SUBTRACT)
    with BuildSketch(Plane(origin=(-3.948545621, -16.375444783, -30.585343246), x_dir=(-0.9886132451058307, 0, -0.1504787413600958), z_dir=(0, -1, 0))) as fillet3_piece_4:
        with BuildLine():
            CenterArc((0.562435527, -1), FILLET3_R, 90, 59.471323616)
            Line((-0.298939504, -0.492030458), (-0.316167005, -0.481871067))
            ThreePointArc((-0.316167005, -0.481871067), (-0.168173949, -0.234650824), (-0.016955383, 0.010607308))
            Line((-0.016955383, 0.010607308), (0, 0.02))
            Line((0, 0.02), (0.562435527, 0.02))
            Line((0.562435527, 0.02), (0.562435527, 0))
        make_face()
    extrude(amount=15.384050094, mode=Mode.SUBTRACT)

    # Sketch9 → Cut-Extrude6 (cut)
    with BuildSketch(Plane.XY.offset(-32.5)):
        with Locations((-13.24253886, -20.332641731)):
            Rectangle(SKETCH9_W, SKETCH9_H)
        with Locations((-13.24253886, -27.700904501)):
            Rectangle(SKETCH9_W, SKETCH9_H_2)
    extrude(amount=CUT_EXTRUDE6_DEPTH, mode=Mode.SUBTRACT)

    # Sketch10 → Cut-Extrude7 (cut)
    with BuildSketch(Plane(origin=(0, 0, -21.5), x_dir=(-1, 0, 0), z_dir=(0, 0, -1))):
        with Locations((13.054523996, -20.332641731)):
            Rectangle(SKETCH10_W, SKETCH10_H)
        with Locations((13.054523996, -27.700904501)):
            Rectangle(SKETCH10_W, SKETCH10_H_2)
    extrude(amount=-CUT_EXTRUDE7_DEPTH, mode=Mode.SUBTRACT)


solid = part_2.part
